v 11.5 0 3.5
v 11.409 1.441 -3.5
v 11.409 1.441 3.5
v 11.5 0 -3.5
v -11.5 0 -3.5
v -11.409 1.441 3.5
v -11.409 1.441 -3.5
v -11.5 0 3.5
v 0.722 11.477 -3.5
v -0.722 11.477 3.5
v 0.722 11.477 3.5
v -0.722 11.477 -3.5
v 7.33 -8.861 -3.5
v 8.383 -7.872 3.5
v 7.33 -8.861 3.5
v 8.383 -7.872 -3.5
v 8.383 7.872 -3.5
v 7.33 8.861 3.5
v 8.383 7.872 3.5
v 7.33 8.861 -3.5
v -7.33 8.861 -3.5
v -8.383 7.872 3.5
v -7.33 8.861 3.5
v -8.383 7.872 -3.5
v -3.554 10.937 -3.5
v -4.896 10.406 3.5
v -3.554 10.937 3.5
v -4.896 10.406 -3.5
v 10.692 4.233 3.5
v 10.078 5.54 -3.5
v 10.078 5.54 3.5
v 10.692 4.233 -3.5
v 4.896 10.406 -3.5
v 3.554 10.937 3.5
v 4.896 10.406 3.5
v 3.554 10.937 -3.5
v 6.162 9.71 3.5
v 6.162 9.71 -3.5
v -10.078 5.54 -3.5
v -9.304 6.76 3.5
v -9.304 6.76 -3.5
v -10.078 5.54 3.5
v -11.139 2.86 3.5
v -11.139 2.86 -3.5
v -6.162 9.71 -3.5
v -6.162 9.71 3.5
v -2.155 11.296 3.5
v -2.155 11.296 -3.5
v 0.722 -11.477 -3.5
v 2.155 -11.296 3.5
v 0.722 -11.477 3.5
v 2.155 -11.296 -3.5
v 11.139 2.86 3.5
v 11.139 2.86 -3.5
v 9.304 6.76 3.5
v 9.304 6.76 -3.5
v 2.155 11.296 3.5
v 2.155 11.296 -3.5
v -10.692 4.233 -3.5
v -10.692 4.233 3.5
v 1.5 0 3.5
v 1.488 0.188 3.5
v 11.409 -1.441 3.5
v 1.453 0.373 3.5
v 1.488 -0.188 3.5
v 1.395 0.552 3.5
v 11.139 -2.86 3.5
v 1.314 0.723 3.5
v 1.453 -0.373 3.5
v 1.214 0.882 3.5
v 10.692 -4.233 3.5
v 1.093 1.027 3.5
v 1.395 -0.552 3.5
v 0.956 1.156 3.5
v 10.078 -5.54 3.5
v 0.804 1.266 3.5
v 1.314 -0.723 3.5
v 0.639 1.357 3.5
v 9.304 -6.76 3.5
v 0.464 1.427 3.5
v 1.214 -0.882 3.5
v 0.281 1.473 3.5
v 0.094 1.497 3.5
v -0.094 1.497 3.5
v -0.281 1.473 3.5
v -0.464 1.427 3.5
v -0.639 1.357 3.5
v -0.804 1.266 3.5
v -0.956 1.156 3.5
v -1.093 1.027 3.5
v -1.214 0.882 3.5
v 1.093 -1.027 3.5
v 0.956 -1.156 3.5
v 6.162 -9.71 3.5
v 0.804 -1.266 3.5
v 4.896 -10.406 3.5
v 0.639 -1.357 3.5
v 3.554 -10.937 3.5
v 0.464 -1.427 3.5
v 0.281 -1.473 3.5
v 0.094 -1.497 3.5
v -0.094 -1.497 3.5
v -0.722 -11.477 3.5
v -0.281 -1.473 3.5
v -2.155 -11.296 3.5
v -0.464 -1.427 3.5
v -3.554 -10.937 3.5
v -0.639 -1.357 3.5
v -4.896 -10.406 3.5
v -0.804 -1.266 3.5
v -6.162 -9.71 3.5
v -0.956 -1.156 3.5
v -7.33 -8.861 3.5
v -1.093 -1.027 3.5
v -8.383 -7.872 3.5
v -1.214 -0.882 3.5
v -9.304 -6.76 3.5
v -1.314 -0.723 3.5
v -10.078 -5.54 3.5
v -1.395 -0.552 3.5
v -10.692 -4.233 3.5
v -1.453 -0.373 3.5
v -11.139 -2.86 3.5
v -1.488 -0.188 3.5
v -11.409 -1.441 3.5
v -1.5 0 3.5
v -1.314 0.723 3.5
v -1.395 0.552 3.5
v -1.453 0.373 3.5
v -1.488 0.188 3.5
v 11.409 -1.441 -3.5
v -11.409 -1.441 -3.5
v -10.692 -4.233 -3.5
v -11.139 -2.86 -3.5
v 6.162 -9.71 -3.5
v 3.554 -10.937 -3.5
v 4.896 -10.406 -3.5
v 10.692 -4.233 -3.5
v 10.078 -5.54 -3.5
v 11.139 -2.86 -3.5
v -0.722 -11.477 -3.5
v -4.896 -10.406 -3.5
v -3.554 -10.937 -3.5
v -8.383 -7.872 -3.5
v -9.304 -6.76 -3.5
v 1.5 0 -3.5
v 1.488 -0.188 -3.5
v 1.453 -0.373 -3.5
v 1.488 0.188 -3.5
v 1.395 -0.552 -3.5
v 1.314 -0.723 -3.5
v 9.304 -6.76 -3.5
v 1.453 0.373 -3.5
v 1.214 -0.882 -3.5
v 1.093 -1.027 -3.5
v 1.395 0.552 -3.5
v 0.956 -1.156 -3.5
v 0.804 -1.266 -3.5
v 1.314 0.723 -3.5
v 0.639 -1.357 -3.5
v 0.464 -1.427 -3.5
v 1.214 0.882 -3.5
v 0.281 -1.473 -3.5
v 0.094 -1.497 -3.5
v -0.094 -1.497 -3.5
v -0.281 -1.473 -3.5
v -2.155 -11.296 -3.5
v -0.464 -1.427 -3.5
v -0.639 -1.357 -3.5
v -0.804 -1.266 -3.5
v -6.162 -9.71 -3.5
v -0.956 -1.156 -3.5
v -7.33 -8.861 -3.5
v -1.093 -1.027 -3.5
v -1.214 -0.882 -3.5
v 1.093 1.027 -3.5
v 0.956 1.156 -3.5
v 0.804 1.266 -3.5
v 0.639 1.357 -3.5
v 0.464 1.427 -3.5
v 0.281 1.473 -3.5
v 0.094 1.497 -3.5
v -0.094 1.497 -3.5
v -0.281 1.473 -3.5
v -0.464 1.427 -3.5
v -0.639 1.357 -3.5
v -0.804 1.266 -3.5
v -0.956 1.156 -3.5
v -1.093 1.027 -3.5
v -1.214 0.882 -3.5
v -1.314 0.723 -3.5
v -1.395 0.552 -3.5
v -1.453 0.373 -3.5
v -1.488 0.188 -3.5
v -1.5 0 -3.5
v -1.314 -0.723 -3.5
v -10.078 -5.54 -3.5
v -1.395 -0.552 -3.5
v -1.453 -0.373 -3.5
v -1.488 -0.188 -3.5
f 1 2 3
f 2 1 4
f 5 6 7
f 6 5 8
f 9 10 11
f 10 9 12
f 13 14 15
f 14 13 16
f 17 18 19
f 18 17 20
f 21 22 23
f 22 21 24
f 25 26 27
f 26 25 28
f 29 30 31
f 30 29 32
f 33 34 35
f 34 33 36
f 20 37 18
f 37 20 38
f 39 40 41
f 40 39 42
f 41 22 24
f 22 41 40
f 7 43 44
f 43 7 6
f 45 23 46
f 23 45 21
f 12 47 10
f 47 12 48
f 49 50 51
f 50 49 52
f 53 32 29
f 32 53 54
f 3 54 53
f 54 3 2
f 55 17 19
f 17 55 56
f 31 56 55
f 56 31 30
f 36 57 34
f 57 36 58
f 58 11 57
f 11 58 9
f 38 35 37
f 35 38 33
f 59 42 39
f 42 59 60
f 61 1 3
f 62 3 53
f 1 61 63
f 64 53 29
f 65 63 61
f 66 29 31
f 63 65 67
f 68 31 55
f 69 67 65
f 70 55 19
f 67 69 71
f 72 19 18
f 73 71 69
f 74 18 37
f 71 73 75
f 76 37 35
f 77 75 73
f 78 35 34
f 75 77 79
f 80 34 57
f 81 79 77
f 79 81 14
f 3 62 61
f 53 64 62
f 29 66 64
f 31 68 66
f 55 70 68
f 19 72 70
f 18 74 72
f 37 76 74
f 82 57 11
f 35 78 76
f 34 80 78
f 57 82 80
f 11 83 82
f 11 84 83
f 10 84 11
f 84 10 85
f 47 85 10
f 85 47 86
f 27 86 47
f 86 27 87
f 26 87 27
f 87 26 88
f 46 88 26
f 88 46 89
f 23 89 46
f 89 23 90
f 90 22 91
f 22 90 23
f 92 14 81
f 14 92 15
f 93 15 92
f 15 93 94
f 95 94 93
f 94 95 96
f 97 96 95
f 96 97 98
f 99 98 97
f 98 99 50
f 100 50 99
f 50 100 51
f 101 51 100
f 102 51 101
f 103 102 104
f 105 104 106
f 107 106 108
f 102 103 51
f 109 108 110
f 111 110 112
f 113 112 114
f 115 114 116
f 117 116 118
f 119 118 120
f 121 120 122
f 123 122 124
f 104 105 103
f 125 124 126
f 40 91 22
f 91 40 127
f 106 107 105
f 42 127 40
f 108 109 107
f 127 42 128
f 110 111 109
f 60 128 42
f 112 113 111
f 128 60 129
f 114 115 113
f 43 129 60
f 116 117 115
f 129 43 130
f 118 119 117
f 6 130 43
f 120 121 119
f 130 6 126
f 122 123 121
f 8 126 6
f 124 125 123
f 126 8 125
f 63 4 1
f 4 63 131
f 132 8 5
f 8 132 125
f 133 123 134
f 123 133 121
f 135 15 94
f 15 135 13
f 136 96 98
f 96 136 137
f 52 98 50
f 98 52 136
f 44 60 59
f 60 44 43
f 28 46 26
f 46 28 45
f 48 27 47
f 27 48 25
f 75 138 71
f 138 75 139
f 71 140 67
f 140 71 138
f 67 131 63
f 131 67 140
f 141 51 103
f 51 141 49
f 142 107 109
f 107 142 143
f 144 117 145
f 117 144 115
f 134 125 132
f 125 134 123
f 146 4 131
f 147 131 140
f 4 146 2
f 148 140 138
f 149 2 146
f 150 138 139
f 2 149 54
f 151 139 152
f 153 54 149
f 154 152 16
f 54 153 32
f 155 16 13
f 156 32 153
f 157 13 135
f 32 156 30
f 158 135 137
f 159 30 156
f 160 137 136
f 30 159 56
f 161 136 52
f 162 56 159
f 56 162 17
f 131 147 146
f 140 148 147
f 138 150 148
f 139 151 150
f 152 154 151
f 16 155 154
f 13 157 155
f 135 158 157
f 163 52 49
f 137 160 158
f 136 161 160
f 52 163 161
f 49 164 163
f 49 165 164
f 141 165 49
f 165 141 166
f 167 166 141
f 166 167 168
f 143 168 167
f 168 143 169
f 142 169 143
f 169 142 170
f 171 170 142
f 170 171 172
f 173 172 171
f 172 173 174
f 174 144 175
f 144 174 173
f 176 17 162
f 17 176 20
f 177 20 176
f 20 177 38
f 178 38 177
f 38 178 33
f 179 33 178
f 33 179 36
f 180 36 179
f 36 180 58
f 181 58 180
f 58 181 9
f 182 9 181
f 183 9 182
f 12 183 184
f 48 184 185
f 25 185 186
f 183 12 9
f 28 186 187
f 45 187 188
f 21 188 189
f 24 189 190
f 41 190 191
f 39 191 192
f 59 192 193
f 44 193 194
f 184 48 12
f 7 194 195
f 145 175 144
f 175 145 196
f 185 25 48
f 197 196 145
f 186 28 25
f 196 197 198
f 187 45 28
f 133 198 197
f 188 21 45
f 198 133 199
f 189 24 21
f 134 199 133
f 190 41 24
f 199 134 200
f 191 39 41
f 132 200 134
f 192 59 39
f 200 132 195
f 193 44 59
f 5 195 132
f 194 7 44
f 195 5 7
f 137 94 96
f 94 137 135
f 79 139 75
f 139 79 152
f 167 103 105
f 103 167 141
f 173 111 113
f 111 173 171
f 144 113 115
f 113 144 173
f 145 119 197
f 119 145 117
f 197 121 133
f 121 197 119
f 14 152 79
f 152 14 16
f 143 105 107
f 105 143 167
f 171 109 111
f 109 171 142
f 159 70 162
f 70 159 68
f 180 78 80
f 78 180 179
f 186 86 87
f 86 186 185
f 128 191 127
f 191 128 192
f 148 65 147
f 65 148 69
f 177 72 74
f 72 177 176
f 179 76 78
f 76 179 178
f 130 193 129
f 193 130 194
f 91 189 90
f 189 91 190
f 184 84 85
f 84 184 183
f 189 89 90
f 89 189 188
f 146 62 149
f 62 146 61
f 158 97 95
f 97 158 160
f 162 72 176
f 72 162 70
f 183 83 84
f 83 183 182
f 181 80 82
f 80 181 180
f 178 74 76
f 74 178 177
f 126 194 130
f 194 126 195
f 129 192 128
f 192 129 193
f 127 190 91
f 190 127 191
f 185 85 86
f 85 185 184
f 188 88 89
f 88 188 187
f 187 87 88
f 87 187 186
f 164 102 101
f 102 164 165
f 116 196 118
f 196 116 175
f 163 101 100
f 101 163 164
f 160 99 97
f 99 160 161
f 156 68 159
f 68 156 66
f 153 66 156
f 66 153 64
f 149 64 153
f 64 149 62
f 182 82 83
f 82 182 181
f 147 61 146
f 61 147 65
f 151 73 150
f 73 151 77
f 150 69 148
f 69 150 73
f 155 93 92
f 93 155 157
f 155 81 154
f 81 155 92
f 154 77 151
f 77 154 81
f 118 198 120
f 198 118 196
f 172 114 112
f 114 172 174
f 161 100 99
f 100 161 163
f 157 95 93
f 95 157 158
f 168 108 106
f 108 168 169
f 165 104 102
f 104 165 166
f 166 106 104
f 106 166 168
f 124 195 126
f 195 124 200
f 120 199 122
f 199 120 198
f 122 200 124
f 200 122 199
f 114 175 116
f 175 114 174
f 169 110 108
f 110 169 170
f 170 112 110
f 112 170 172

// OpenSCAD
$fn = 50;


difference() {
	union() {
		translate(v = [0, 0, -3.5000000000]) {
			cylinder(h = 7, r = 11.5000000000);
		}
	}
	union() {
		translate(v = [0, 0, -100.0000000000]) {
			cylinder(h = 200, r = 1.5000000000);
		}
	}
}
